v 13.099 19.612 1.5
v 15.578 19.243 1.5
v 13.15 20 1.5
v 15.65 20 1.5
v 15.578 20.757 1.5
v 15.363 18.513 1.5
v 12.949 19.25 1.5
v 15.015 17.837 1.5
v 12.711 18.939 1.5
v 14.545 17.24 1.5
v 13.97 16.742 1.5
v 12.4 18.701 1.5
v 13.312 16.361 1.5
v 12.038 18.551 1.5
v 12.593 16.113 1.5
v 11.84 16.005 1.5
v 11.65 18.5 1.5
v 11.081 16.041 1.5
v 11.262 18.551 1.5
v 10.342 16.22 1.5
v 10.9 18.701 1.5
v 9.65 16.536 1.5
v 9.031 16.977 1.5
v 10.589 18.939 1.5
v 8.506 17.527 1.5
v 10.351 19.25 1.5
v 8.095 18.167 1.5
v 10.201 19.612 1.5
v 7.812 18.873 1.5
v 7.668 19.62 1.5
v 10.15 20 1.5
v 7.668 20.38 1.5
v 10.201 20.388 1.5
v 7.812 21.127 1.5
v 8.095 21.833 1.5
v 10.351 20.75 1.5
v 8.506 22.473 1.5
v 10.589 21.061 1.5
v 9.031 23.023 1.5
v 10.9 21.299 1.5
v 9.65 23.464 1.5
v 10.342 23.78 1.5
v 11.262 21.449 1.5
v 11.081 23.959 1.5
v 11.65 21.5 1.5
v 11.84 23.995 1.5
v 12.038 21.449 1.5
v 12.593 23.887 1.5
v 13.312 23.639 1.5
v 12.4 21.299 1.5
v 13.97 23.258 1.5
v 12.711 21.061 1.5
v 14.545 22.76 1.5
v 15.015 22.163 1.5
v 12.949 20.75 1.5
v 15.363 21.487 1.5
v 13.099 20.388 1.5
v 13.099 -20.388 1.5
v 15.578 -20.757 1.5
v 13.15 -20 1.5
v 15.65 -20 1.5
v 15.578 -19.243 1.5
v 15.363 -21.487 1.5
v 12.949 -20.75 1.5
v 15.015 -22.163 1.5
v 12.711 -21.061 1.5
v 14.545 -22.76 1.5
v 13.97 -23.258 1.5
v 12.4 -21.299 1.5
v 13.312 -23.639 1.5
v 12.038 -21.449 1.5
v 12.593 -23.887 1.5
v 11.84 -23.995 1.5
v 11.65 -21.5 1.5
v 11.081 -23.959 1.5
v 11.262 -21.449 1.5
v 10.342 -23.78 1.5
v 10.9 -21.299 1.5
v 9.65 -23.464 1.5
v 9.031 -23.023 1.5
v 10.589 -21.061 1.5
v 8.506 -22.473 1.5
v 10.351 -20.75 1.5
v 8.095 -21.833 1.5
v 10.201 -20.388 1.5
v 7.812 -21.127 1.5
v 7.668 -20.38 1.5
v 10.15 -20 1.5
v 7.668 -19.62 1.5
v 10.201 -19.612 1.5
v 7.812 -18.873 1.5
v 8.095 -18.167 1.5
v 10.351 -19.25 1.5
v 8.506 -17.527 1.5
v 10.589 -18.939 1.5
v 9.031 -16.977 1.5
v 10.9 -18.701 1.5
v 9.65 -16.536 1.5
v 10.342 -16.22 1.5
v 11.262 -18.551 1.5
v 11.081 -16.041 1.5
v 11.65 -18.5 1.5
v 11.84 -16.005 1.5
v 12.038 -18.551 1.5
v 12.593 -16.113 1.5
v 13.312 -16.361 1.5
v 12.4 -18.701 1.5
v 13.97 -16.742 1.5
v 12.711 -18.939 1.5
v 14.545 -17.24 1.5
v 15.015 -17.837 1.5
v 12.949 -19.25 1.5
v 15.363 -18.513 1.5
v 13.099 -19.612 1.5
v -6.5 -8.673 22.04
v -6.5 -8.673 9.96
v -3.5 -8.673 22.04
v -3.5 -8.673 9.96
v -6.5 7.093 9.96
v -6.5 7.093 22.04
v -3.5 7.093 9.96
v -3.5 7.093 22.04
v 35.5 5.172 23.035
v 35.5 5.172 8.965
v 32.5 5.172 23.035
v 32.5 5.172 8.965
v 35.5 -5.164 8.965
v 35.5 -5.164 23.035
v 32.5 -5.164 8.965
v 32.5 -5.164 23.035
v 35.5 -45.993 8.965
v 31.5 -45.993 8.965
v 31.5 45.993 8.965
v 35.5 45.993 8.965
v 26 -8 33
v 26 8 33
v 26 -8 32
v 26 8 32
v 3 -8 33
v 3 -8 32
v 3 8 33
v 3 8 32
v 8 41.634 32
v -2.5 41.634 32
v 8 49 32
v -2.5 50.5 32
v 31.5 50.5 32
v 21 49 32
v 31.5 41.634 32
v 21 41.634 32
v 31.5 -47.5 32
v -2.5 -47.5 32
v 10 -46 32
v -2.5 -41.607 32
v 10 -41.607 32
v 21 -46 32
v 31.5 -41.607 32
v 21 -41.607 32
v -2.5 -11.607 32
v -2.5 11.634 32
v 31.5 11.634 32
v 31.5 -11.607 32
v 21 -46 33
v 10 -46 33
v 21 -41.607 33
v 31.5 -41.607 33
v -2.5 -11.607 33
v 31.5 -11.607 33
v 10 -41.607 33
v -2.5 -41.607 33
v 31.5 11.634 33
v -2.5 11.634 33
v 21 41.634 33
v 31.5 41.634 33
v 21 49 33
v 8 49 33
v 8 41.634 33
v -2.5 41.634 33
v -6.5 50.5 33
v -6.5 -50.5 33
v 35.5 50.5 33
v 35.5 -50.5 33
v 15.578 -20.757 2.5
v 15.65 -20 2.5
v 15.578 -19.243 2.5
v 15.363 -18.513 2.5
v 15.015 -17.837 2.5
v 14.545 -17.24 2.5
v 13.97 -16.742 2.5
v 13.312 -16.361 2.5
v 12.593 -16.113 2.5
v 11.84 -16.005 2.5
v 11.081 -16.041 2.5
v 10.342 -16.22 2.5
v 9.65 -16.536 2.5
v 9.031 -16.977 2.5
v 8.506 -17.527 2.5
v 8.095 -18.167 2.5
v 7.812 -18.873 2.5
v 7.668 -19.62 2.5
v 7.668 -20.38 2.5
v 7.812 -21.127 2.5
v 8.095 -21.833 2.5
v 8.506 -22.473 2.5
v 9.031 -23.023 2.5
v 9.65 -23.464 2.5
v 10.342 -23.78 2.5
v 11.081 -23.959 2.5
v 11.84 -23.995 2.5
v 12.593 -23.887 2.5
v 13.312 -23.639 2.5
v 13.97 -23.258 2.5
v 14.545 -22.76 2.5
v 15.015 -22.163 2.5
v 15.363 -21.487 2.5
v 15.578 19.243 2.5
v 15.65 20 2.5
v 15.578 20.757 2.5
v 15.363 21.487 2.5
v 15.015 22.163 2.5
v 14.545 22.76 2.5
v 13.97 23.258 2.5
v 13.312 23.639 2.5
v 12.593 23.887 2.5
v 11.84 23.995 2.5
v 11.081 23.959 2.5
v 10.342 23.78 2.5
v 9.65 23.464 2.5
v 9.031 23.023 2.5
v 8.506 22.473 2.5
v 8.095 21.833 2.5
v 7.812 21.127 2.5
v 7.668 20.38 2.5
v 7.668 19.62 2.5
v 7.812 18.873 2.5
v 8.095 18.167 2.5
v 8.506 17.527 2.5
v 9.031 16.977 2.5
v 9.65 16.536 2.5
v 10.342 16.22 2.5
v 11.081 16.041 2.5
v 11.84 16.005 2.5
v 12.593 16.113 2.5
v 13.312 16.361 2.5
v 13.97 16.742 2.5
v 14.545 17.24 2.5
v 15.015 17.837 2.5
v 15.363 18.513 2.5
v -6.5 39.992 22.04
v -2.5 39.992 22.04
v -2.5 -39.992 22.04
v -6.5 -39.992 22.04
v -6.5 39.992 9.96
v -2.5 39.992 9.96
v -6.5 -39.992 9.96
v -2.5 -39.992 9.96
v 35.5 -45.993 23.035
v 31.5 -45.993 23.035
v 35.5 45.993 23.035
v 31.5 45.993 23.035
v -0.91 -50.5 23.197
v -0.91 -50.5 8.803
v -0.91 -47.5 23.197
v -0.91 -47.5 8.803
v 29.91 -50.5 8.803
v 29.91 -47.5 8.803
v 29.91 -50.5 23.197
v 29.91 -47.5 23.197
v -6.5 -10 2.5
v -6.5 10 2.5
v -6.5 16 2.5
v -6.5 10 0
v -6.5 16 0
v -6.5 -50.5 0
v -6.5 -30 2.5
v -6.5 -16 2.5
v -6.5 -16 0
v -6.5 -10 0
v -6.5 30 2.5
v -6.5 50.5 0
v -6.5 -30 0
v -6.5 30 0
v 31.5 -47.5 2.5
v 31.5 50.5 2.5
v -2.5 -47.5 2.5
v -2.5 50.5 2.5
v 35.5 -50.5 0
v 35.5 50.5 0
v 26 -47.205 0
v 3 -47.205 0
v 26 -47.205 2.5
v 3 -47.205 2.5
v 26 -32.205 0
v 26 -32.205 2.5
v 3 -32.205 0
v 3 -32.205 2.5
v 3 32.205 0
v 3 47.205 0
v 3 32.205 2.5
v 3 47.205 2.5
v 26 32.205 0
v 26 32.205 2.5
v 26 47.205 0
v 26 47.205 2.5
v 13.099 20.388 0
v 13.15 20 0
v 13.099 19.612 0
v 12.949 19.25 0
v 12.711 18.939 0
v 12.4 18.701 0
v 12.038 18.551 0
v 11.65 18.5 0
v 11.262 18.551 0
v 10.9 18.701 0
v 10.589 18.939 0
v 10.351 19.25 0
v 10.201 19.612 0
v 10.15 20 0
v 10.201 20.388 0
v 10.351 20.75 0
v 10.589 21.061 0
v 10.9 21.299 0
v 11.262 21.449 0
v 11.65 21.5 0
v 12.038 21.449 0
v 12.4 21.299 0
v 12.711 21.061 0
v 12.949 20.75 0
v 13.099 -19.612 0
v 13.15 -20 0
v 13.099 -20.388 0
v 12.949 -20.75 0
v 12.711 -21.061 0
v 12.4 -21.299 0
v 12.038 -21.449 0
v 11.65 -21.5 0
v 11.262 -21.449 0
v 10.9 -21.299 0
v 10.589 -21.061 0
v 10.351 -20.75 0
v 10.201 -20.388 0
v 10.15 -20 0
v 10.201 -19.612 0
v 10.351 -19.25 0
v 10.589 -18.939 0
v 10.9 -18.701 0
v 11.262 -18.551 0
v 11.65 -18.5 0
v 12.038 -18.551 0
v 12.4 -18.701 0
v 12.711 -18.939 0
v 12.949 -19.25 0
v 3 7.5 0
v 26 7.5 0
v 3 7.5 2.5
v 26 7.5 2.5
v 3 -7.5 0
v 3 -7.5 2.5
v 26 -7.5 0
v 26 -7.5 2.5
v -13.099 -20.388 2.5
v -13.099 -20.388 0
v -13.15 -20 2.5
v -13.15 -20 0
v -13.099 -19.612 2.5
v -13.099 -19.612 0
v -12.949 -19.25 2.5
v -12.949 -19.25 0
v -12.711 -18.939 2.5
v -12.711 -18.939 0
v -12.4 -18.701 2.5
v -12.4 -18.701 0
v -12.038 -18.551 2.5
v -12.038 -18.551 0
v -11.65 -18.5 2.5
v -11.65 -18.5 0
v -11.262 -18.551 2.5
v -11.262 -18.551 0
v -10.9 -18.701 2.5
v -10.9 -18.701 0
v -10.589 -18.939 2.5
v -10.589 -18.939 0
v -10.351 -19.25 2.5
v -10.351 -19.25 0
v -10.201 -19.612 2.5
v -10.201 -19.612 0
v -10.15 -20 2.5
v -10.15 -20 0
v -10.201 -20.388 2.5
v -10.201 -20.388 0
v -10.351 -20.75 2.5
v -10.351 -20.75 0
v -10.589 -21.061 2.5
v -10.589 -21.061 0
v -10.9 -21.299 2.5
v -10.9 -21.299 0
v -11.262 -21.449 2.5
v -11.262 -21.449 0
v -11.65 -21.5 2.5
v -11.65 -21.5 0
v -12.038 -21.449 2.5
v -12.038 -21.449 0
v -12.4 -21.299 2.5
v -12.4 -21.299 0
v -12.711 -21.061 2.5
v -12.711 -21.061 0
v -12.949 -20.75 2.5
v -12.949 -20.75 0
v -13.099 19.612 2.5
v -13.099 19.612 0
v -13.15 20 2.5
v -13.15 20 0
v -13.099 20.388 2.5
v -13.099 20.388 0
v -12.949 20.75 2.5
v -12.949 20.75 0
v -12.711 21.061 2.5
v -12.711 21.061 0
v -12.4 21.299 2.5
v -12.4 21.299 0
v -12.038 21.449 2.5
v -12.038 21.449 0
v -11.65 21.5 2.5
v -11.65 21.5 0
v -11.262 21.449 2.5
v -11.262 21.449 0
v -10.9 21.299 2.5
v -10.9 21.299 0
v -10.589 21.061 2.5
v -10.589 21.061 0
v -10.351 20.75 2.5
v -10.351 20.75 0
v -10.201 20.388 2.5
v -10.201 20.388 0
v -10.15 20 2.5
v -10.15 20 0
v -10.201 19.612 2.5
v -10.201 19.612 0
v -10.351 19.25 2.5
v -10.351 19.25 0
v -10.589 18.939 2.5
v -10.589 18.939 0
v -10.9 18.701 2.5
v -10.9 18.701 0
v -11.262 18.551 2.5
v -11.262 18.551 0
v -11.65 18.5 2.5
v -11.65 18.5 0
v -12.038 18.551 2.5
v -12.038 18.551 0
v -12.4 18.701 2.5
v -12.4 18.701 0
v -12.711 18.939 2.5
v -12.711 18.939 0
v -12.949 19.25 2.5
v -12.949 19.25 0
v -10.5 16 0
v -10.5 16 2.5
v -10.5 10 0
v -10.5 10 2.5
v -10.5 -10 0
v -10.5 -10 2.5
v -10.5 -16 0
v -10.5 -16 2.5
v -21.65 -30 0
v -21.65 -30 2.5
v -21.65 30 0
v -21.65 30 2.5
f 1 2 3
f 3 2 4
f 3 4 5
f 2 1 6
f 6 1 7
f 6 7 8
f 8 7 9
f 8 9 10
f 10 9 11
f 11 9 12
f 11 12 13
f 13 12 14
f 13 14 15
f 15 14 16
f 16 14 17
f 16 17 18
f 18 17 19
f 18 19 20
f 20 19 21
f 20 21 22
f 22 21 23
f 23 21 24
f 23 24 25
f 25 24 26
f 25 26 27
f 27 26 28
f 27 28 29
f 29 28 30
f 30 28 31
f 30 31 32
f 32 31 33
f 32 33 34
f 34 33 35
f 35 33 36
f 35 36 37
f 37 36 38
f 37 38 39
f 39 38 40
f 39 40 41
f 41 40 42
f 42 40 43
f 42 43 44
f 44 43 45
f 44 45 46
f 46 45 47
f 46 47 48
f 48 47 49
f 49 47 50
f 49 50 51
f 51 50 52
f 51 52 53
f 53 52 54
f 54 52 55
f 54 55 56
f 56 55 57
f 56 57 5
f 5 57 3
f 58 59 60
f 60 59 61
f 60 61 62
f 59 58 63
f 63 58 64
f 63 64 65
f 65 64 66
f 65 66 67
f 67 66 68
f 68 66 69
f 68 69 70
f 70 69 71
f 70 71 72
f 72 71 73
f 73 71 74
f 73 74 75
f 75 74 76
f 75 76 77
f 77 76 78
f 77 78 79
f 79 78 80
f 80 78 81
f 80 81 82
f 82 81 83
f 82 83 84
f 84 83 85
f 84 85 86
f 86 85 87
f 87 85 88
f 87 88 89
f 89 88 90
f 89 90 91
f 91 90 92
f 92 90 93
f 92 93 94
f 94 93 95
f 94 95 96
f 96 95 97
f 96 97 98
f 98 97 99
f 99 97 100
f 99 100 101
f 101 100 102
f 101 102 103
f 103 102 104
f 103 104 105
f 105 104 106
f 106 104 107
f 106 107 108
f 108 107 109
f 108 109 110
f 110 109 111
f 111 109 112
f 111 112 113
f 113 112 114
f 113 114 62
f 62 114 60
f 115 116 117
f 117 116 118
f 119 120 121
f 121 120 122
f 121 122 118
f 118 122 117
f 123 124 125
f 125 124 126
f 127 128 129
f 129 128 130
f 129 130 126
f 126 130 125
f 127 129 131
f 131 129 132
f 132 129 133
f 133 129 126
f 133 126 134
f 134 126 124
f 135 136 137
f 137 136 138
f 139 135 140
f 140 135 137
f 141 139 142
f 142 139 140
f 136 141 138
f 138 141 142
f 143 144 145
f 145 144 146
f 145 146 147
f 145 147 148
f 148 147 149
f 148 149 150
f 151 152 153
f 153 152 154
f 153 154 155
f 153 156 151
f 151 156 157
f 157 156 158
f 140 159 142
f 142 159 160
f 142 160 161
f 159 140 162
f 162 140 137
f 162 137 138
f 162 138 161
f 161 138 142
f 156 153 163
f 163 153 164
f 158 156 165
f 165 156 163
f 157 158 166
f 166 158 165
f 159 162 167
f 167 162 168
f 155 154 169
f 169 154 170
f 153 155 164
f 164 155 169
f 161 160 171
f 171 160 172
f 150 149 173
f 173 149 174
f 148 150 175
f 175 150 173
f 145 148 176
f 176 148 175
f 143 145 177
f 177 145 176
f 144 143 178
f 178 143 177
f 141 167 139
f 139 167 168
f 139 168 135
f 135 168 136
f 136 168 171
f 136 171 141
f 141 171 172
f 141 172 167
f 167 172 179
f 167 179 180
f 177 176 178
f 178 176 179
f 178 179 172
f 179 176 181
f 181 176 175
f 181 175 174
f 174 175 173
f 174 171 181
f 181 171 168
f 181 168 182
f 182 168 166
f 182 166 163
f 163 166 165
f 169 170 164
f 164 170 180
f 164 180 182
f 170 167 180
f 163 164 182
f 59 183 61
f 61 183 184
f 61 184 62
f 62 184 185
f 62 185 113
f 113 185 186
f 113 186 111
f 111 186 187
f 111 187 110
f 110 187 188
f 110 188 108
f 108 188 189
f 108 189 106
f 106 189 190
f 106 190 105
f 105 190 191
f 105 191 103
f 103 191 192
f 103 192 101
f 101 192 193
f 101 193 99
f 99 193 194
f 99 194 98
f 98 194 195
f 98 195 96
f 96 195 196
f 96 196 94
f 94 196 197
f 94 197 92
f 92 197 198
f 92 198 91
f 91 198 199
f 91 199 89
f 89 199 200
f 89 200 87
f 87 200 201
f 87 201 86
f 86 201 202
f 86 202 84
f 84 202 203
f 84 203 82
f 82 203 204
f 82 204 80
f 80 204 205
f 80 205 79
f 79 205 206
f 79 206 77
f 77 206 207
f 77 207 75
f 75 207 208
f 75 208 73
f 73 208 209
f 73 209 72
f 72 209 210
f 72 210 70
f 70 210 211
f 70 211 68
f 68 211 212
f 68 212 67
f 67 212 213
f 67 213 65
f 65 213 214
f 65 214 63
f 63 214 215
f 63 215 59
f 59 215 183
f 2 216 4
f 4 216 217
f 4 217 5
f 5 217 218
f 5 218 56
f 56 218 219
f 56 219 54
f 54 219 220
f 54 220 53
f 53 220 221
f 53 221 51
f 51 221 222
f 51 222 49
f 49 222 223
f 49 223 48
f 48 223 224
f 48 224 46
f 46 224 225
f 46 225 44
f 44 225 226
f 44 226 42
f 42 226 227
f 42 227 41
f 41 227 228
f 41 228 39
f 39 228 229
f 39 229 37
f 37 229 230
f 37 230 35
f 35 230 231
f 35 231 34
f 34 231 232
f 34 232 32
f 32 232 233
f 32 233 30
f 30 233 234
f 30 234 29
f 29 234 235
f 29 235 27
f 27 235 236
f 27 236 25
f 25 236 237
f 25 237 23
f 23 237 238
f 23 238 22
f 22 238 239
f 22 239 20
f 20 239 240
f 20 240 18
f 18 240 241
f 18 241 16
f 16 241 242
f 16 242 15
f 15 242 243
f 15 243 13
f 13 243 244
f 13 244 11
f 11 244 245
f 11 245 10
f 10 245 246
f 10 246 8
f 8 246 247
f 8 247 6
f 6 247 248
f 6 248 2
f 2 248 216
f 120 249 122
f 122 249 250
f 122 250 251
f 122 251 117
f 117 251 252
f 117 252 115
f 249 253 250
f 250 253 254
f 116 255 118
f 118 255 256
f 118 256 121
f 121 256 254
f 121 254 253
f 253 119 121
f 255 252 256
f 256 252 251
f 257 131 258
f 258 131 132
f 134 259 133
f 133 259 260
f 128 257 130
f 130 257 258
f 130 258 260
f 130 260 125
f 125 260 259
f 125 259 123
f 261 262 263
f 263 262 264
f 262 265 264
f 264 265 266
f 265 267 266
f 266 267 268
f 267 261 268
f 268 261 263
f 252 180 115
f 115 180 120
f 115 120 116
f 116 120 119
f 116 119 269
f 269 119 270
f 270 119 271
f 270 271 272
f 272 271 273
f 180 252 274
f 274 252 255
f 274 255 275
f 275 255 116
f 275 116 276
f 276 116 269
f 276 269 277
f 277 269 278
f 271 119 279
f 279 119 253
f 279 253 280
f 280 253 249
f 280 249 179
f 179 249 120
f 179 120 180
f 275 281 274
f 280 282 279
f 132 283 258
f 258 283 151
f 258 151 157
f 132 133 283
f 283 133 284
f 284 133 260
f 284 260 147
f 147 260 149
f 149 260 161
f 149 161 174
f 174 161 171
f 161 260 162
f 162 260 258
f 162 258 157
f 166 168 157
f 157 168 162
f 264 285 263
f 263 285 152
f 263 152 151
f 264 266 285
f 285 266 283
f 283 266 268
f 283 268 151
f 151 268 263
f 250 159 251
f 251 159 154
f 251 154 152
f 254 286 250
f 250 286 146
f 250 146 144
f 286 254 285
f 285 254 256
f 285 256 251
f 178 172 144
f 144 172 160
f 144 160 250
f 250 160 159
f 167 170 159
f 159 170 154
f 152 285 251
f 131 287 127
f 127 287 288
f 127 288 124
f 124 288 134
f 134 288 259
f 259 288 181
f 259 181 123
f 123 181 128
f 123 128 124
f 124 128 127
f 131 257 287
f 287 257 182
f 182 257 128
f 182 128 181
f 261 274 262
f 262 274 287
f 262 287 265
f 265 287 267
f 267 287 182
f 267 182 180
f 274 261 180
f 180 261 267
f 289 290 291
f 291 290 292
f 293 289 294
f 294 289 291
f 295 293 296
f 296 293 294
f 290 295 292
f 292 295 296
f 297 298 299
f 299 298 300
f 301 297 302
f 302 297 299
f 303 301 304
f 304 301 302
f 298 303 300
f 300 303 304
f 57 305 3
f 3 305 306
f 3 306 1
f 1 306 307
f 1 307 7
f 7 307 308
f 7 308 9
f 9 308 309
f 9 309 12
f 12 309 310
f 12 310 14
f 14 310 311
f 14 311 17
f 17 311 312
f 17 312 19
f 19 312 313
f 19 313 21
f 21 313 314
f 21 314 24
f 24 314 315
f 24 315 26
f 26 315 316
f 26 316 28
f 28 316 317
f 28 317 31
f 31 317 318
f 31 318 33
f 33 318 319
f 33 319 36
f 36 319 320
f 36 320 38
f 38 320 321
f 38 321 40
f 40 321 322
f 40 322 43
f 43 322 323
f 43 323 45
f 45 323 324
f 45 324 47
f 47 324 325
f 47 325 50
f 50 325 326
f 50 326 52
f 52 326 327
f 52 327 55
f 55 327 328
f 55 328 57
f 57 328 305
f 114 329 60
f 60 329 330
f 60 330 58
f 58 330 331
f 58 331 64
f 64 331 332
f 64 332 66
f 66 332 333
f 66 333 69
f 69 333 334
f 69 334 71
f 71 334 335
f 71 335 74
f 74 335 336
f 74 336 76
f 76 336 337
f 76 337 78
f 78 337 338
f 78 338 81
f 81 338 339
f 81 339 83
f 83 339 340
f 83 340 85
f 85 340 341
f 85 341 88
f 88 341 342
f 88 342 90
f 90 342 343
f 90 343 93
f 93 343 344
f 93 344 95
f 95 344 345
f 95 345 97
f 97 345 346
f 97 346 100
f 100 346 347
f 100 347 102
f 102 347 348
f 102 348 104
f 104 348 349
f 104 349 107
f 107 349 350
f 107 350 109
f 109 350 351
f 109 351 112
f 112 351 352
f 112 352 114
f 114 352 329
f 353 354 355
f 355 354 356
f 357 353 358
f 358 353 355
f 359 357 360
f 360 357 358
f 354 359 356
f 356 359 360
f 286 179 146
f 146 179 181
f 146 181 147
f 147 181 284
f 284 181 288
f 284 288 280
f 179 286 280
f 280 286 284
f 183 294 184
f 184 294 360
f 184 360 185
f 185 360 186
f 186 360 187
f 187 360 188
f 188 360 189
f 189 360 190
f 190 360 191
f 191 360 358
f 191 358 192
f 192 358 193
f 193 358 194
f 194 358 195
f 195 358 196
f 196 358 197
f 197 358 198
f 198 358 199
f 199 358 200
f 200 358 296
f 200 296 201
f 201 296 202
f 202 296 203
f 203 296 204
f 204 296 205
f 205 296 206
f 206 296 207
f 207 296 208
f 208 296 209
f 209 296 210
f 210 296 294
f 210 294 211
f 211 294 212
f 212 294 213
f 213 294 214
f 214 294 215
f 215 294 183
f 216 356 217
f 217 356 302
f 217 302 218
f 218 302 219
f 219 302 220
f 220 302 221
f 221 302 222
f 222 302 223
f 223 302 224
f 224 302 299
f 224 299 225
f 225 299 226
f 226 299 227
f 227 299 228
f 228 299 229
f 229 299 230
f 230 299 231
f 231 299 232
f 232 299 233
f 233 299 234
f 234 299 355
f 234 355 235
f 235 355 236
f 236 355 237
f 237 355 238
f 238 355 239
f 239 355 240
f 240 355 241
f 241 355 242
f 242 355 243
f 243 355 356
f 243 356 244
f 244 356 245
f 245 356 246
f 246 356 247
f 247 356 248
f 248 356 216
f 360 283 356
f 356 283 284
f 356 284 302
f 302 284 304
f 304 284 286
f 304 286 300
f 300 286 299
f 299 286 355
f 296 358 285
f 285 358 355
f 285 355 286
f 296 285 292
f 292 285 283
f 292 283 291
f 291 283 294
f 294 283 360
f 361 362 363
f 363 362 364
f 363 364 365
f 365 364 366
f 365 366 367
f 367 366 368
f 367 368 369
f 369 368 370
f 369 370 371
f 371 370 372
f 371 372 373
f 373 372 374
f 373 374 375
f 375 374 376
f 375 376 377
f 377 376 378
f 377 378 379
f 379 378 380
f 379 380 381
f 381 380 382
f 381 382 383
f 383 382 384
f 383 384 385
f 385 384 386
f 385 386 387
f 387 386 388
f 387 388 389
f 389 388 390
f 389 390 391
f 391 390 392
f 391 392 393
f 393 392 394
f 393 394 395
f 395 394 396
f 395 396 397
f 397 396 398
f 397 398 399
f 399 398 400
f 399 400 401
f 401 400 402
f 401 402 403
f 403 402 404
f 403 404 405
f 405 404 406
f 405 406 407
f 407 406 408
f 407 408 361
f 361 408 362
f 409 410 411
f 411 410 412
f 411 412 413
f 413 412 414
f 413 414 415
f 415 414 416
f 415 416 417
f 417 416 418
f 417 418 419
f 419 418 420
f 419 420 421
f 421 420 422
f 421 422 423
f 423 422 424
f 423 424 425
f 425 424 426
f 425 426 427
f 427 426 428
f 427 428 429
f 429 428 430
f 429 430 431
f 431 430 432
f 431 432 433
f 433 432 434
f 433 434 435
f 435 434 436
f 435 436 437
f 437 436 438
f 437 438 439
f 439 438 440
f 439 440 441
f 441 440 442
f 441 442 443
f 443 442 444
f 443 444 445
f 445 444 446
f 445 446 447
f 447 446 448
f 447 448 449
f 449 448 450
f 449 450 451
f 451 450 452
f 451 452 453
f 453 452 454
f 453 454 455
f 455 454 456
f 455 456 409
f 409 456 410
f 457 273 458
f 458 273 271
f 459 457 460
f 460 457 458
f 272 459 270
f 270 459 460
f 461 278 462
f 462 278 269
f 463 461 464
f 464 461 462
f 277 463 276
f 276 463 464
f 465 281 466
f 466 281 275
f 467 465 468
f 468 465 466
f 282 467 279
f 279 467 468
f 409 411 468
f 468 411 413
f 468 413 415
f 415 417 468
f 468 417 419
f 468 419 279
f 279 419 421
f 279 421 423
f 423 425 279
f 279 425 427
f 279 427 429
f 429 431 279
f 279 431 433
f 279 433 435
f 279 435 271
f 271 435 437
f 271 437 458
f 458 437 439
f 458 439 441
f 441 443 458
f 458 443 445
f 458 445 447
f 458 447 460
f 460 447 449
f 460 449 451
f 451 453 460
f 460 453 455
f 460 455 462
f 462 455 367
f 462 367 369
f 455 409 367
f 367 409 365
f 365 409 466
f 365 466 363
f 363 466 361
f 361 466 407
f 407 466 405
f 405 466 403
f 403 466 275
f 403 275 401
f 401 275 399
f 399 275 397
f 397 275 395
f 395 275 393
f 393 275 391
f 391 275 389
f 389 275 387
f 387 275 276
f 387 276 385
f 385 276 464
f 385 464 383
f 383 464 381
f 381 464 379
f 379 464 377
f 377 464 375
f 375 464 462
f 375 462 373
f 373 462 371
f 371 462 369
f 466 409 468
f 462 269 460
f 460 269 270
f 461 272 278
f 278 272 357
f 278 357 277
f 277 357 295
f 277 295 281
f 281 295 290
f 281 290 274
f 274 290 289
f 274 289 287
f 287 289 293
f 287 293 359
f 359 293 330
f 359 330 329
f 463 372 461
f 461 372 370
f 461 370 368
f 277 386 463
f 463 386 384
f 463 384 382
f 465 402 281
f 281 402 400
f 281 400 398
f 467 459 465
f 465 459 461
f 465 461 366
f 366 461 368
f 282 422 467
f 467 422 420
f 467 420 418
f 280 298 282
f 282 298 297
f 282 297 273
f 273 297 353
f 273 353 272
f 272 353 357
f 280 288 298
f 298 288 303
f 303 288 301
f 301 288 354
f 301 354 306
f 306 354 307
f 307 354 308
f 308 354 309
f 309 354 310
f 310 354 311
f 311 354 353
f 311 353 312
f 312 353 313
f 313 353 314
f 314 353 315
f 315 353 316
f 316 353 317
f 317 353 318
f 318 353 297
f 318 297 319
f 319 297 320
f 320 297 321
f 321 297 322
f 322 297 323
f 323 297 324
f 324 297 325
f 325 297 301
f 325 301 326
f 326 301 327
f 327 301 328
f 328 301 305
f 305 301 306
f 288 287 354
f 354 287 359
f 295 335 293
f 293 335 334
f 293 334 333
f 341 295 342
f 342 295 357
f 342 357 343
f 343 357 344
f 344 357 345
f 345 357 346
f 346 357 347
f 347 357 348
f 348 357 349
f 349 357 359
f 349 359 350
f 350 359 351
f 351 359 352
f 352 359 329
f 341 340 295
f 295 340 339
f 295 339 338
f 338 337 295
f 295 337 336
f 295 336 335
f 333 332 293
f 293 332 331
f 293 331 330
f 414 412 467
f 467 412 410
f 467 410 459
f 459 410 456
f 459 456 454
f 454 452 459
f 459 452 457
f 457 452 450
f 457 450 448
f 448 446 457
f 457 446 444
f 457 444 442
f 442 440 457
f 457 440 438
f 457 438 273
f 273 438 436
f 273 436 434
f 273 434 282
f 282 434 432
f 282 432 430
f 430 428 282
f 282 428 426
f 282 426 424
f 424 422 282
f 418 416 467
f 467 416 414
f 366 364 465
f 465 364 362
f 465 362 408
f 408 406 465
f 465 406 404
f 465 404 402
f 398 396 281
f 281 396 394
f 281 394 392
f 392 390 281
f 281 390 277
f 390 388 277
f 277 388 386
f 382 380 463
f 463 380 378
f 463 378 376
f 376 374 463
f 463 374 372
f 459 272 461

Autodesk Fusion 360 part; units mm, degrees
sketch "Sketch1" plane through (0, 0, 0) normal (0, 0, 1) x (1, 0, 0)
  line L0 (21.65, 30) -> (-21.65, 30)
  line L1 (-21.65, 30) -> (-21.65, -30)
  line L2 (-21.65, -30) -> (21.65, -30)
  line L3 (21.65, -30) -> (21.65, 30) construction
  line L4 (21.65, 30) -> (-21.65, -30) construction
  line L5 (-21.65, 30) -> (21.65, -30) construction
  line L6 (0, 30) -> (0, -30) construction
  line L7 (21.65, 0) -> (-21.65, 0) construction
  circle A0 centre (-11.65, 20) radius 1.5
  circle A1 centre (11.65, 20) radius 1.5
  circle A2 centre (-11.65, -20) radius 1.5
  circle A3 centre (11.65, -20) radius 1.5
  line L8 (-6.5, 50.5) -> (35.5, 50.5)
  line L9 (35.5, 50.5) -> (35.5, -50.5)
  line L10 (35.5, -50.5) -> (-6.5, -50.5)
  line L11 (-6.5, -50.5) -> (-6.5, 50.5)
  line L12 (-6.5, 50.5) -> (35.5, -50.5) construction
  line L13 (35.5, 50.5) -> (-6.5, -50.5) construction
  line L14 (-6.5, 0) -> (35.5, 0) construction
  line L15 (31.5, 47.5) -> (-2.5, 47.5)
  line L16 (-2.5, 47.5) -> (-2.5, -47.5)
  line L17 (-2.5, -47.5) -> (31.5, -47.5)
  line L18 (31.5, -47.5) -> (31.5, 47.5)
  line L19 (31.5, 47.5) -> (-2.5, -47.5) construction
  line L20 (-2.5, 47.5) -> (31.5, -47.5) construction
  line L21 (-2.5, 47.5) -> (-2.5, 50.5)
  line L22 (31.5, 47.5) -> (31.5, 50.5)
  line L23 (14.5, 47.5) -> (14.5, -47.5) construction
  line L24 (-6.5, 16) -> (-10.5, 16)
  line L25 (-10.5, 16) -> (-10.5, 10)
  line L26 (-10.5, 10) -> (-6.5, 10)
  line L27 (-6.5, 10) -> (-6.5, 16)
  line L28 (-10.5, -10) -> (-6.5, -10)
  line L29 (-10.5, -16) -> (-10.5, -10)
  line L30 (-6.5, -16) -> (-10.5, -16)
  line L31 (11.65, 20) -> (-6.5, 20) construction
  line L32 (-6.5, 23.26) -> (-6.5, 16.3949)
  line L33 (-2.5, 17.3602) -> (-2.5, 22.9192)
  line L34 (-2.5, 22.9192) -> (-6.5, 16.3949) construction
  line L35 (-6.5, 23.26) -> (-2.5, 17.3602) construction
  line L36 (26, 32.2049) -> (3, 32.2049)
  line L37 (3, 32.2049) -> (3, 47.2049)
  line L38 (3, 47.2049) -> (26, 47.2049)
  line L39 (26, 47.2049) -> (26, 32.2049)
  line L40 (26, 32.2049) -> (3, 47.2049) construction
  line L41 (3, 32.2049) -> (26, 47.2049) construction
  line L42 (3, -47.2049) -> (26, -47.2049)
  line L43 (26, -32.2049) -> (3, -32.2049)
  line L44 (26, -47.2049) -> (26, -32.2049)
  line L45 (3, -32.2049) -> (3, -47.2049)
  line L46 (26, 7.5) -> (3, 7.5)
  line L47 (3, 7.5) -> (3, -7.5)
  line L48 (3, -7.5) -> (26, -7.5)
  line L49 (26, -7.5) -> (26, 7.5)
  line L50 (26, 7.5) -> (3, -7.5) construction
  line L51 (3, 7.5) -> (26, -7.5) construction
  point P0 (14.5, 0)
  point P1 (14.5, 0)
  point P2 (-4.2897, 20)
  point P3 (-4.2897, -20)
  point P4 (14.5, 0)
  point P5 (14.5, 39.7049)
  point P6 (14.5, 0)
  dimension "d1" = 43.3
  dimension "d2" = 60
  dimension "screwHoleThickness" = 3
  dimension "wSpacingScrew" = 11.65
  dimension "lSpacingScrew" = 20
  dimension "width" = 42
  dimension "lengthWall" = 101
  dimension "d8" = 34
  dimension "length" = 95
  dimension "d24" = 14.5
  dimension "screwwallcancel" = 4
  dimension "d26" = 6
  dimension "d27" = 10
  dimension "d43" = 23
  dimension "d44" = 15
  dimension "d45" = 23
  dimension "d46" = 15
extrude "Extrude9" add sketch "Sketch1" along normal blind 2.5 contours L15 L16 L17 L18 L33 | L0 L1 L2 L11 L24 L25 L26 L28 L29 L30 L32 | L8 L15 L21 L22 makes body 1 at (-17.9333, -3.3333, 0) makes body 2 at (21.7167, 19.9016, 0)
extrude "Extrude10" add sketch "Sketch1" along normal blind 32 contours L0 L2 L11 L16 L27 L32 L33 | L0 L8 L11 L16 L21 | L2 L8 L9 L10 L11 L16 L17 L18 L22 bodies 1 2
sketch "Sketch2" plane through (35.5, 0, 0) normal (1, 0, 0) x (0, 1, 0)
  line L0 (-50.5, 0) -> (50.5, 0)
  line L1 (50.5, 0) -> (50.5, 32)
  line L2 (50.5, 32) -> (-50.5, 32)
  line L3 (-50.5, 32) -> (-50.5, 0)
  line L4 (0, 32) -> (0, 0) construction
  line L5 (50.5, 16) -> (-50.5, 16) construction
  line L6 (45.9932, 8.9649) -> (-45.9932, 8.9649)
  line L7 (-45.9932, 8.9649) -> (-45.9932, 23.0351)
  line L8 (-45.9932, 23.0351) -> (45.9932, 23.0351)
  line L9 (45.9932, 23.0351) -> (45.9932, 8.9649)
  line L10 (45.9932, 8.9649) -> (-45.9932, 23.0351) construction
  line L11 (-45.9932, 8.9649) -> (45.9932, 23.0351) construction
  line L12 (-5.1643, 23.0351) -> (-5.1643, 8.9649)
  line L13 (5.1722, 23.0351) -> (5.1722, 8.9649)
  point P0 (0, 16)
sketch "Sketch3" plane through (0, -50.5, 0) normal (0, -1, 0) x (1, 0, 0)
  line L0 (-6.5, 0) -> (35.5, 0)
  line L1 (35.5, 0) -> (35.5, 32)
  line L2 (35.5, 32) -> (-6.5, 32)
  line L3 (-6.5, 32) -> (-6.5, 0)
  line L4 (14.5, 32) -> (14.5, 0) construction
  line L5 (35.5, 16) -> (-6.5, 16) construction
  line L6 (29.9102, 8.8033) -> (-0.9102, 8.8033)
  line L7 (-0.9102, 8.8033) -> (-0.9102, 23.1967)
  line L8 (-0.9102, 23.1967) -> (29.9102, 23.1967)
  line L9 (29.9102, 23.1967) -> (29.9102, 8.8033)
  line L10 (29.9102, 8.8033) -> (-0.9102, 23.1967) construction
  line L11 (-0.9102, 8.8033) -> (29.9102, 23.1967) construction
  point P0 (14.5, 16)
extrude "Extrude11" cut sketch "Sketch3" against normal blind 3 contours L6 L7 L8 L9 bodies 1
extrude "Extrude12" cut sketch "Sketch2" against normal blind 4 contours L6 L8 L9 L13 | L6 L8 L12 L13 | L6 L7 L8 L12 bodies 1
sketch "Sketch4" plane through (-6.5, 0, 0) normal (-1, 0, 0) x (0, -1, 0)
  line L0 (-10, 0) -> (-10, 2.5)
  line L1 (-10, 2.5) -> (10, 2.5)
  line L2 (10, 2.5) -> (10, 0)
  line L3 (10, 0) -> (16, 0)
  line L4 (16, 0) -> (16, 2.5)
  line L5 (16, 2.5) -> (30, 2.5)
  line L6 (30, 2.5) -> (30, 0)
  line L7 (30, 0) -> (50.5, 0)
  line L8 (50.5, 0) -> (50.5, 32)
  line L9 (50.5, 32) -> (-50.5, 32)
  line L10 (-50.5, 32) -> (-50.5, 0)
  line L11 (-50.5, 0) -> (-30, 0)
  line L12 (-30, 0) -> (-30, 2.5)
  line L13 (-30, 2.5) -> (-16, 2.5)
  line L14 (-16, 2.5) -> (-16, 0)
  line L15 (-16, 0) -> (-10, 0)
  line L16 (0, 32) -> (0, 0) construction
  line L17 (50.5, 16) -> (-50.5, 16) construction
  line L18 (39.9916, 22.0397) -> (-39.9916, 22.0397)
  line L19 (-39.9916, 22.0397) -> (-39.9916, 9.9603)
  line L20 (-39.9916, 9.9603) -> (39.9916, 9.9603)
  line L21 (39.9916, 9.9603) -> (39.9916, 22.0397)
  line L22 (39.9916, 22.0397) -> (-39.9916, 9.9603) construction
  line L23 (-39.9916, 22.0397) -> (39.9916, 9.9603) construction
  line L24 (-7.0931, 22.0397) -> (8.6732, 22.0397)
  line L25 (8.6732, 22.0397) -> (8.6732, 9.9603)
  line L26 (8.6732, 9.9603) -> (-7.0931, 9.9603)
  line L27 (-7.0931, 9.9603) -> (-7.0931, 22.0397)
  point P0 (0, 16)
extrude "Extrude13" cut sketch "Sketch4" against normal blind 4 contours L18 L20 L21 L25 | L18 L20 L24 L25 L26 L27 | L18 L19 L20 L27 bodies 1
sketch "Sketch5" plane through (0, 0, 2.5) normal (0, 0, 1) x (-1, 0, 0)
  line L0 (-3, 47.2049) -> (-3, 32.2049)
  line L1 (-3, 32.2049) -> (-26, 32.2049)
  line L2 (-26, 32.2049) -> (-26, 47.2049)
  line L3 (-26, 47.2049) -> (-3, 47.2049)
  line L4 (-3, -47.2049) -> (-26, -47.2049)
  line L5 (-26, -47.2049) -> (-26, -32.2049)
  line L6 (-26, -32.2049) -> (-3, -32.2049)
  line L7 (-3, -32.2049) -> (-3, -47.2049)
  circle A0 centre (-11.65, -20) radius 1.5
  circle A1 centre (-11.65, 20) radius 1.5
  line L8 (-26, -7.5) -> (-26, 7.5)
  line L9 (-26, 7.5) -> (-3, 7.5)
  line L10 (-3, 7.5) -> (-3, -7.5)
  line L11 (-3, -7.5) -> (-26, -7.5)
  line L12 (2.5, 47.5) -> (-31.5, 47.5)
  line L13 (-31.5, 47.5) -> (-31.5, -50.5)
  line L14 (-31.5, -50.5) -> (2.5, -50.5)
  line L15 (2.5, -50.5) -> (2.5, 47.5)
  circle A2 centre (-11.65, -20) radius 4
  circle A3 centre (-11.65, 20) radius 4
  dimension "d57" = 8
  dimension "d58" = 8
extrude "Extrude14" cut sketch "Sketch5" against normal blind 0.5 contours A2 | A3 bodies 1
sketch "Sketch6" plane through (0, 0, 32) normal (0, 0, 1) x (-1, 0, 0)
  line L0 (2.5, 47.5) -> (2.5, -50.5)
  line L1 (2.5, -50.5) -> (6.5, -50.5)
  line L2 (6.5, -50.5) -> (6.5, 50.5)
  line L3 (6.5, 50.5) -> (-35.5, 50.5)
  line L4 (-35.5, 50.5) -> (-35.5, -50.5)
  line L5 (-35.5, -50.5) -> (-31.5, -50.5)
  line L6 (-31.5, -50.5) -> (-31.5, 47.5)
  line L7 (-31.5, 47.5) -> (2.5, 47.5)
  line L8 (6.5, -50.5) -> (-35.5, -50.5)
  line L9 (-35.5, -50.5) -> (-35.5, 50.5)
  line L10 (-35.5, 50.5) -> (6.5, 50.5)
  line L11 (6.5, 50.5) -> (6.5, -50.5)
  line L12 (2.5, -41.6336) -> (-31.5, -41.6336)
  line L13 (-31.5, -41.6336) -> (-31.5, -11.6336)
  line L14 (-31.5, -11.6336) -> (2.5, -11.6336)
  line L15 (2.5, -11.6336) -> (2.5, -41.6336)
  line L16 (2.5, 11.6067) -> (-31.5, 11.6067)
  line L17 (-31.5, 11.6067) -> (-31.5, 41.6067)
  line L18 (-31.5, 41.6067) -> (2.5, 41.6067)
  line L19 (2.5, 41.6067) -> (2.5, 11.6067)
  line L20 (-8, -49) -> (-21, -49)
  line L21 (-21, -49) -> (-21, -38)
  line L22 (-21, -38) -> (-8, -38)
  line L23 (-8, -38) -> (-8, -49)
  line L24 (-10, 37) -> (-21, 37)
  line L25 (-21, 37) -> (-21, 46)
  line L26 (-21, 46) -> (-10, 46)
  line L27 (-10, 46) -> (-10, 37)
  line L28 (2.5, -0.0134) -> (-31.5, -0.0134) construction
  line L29 (-3, -8) -> (-26, -8)
  line L30 (-26, -8) -> (-26, 8)
  line L31 (-26, 8) -> (-3, 8)
  line L32 (-3, 8) -> (-3, -8)
  dimension "d63" = 30
  dimension "d64" = 30
extrude "Extrude15" add sketch "Sketch6" along normal blind 1 contours L0 L1 L2 L3 L4 L5 L6 L7 L8 L9 L10 L11 L13 L15 L17 L19 | L0 L6 L7 L18 L25 L26 L27 | L0 L6 L14 L16 | L0 L6 L8 L12 L20 L21 L23 | L29 L30 L31 L32 bodies 1
extrude "Extrude16" cut sketch "Sketch6" along normal blind 2 contours L29 L30 L31 L32 bodies 1
extrude "Extrude17" add sketch "Sketch2" against normal blind 3 contours L6 L8 L12 L13 bodies 1
extrude "Extrude18" add sketch "Sketch4" against normal blind 3 contours L18 L20 L24 L25 L26 L27 bodies 1
extrude "Extrusion19" cut 2 faces at (8.5038, 20.2732, 2) (8.5038, -19.7268, 2) along direction (0, 0, -1) blind 0.5 on bodies 1 bodies 1
equation "d1 = 10 mm + 23.3 mm + 10 mm"
equation "d2 = 10 mm + 40 mm + 10 mm"
equation "width = 36 mm + 2 * wallThickness"
equation "lengthWall = length + 2 * wallThickness"
equation "wallThickness = 3 mm"
equation "zipHole = 6 mm"
equation "height = 32 mm"
